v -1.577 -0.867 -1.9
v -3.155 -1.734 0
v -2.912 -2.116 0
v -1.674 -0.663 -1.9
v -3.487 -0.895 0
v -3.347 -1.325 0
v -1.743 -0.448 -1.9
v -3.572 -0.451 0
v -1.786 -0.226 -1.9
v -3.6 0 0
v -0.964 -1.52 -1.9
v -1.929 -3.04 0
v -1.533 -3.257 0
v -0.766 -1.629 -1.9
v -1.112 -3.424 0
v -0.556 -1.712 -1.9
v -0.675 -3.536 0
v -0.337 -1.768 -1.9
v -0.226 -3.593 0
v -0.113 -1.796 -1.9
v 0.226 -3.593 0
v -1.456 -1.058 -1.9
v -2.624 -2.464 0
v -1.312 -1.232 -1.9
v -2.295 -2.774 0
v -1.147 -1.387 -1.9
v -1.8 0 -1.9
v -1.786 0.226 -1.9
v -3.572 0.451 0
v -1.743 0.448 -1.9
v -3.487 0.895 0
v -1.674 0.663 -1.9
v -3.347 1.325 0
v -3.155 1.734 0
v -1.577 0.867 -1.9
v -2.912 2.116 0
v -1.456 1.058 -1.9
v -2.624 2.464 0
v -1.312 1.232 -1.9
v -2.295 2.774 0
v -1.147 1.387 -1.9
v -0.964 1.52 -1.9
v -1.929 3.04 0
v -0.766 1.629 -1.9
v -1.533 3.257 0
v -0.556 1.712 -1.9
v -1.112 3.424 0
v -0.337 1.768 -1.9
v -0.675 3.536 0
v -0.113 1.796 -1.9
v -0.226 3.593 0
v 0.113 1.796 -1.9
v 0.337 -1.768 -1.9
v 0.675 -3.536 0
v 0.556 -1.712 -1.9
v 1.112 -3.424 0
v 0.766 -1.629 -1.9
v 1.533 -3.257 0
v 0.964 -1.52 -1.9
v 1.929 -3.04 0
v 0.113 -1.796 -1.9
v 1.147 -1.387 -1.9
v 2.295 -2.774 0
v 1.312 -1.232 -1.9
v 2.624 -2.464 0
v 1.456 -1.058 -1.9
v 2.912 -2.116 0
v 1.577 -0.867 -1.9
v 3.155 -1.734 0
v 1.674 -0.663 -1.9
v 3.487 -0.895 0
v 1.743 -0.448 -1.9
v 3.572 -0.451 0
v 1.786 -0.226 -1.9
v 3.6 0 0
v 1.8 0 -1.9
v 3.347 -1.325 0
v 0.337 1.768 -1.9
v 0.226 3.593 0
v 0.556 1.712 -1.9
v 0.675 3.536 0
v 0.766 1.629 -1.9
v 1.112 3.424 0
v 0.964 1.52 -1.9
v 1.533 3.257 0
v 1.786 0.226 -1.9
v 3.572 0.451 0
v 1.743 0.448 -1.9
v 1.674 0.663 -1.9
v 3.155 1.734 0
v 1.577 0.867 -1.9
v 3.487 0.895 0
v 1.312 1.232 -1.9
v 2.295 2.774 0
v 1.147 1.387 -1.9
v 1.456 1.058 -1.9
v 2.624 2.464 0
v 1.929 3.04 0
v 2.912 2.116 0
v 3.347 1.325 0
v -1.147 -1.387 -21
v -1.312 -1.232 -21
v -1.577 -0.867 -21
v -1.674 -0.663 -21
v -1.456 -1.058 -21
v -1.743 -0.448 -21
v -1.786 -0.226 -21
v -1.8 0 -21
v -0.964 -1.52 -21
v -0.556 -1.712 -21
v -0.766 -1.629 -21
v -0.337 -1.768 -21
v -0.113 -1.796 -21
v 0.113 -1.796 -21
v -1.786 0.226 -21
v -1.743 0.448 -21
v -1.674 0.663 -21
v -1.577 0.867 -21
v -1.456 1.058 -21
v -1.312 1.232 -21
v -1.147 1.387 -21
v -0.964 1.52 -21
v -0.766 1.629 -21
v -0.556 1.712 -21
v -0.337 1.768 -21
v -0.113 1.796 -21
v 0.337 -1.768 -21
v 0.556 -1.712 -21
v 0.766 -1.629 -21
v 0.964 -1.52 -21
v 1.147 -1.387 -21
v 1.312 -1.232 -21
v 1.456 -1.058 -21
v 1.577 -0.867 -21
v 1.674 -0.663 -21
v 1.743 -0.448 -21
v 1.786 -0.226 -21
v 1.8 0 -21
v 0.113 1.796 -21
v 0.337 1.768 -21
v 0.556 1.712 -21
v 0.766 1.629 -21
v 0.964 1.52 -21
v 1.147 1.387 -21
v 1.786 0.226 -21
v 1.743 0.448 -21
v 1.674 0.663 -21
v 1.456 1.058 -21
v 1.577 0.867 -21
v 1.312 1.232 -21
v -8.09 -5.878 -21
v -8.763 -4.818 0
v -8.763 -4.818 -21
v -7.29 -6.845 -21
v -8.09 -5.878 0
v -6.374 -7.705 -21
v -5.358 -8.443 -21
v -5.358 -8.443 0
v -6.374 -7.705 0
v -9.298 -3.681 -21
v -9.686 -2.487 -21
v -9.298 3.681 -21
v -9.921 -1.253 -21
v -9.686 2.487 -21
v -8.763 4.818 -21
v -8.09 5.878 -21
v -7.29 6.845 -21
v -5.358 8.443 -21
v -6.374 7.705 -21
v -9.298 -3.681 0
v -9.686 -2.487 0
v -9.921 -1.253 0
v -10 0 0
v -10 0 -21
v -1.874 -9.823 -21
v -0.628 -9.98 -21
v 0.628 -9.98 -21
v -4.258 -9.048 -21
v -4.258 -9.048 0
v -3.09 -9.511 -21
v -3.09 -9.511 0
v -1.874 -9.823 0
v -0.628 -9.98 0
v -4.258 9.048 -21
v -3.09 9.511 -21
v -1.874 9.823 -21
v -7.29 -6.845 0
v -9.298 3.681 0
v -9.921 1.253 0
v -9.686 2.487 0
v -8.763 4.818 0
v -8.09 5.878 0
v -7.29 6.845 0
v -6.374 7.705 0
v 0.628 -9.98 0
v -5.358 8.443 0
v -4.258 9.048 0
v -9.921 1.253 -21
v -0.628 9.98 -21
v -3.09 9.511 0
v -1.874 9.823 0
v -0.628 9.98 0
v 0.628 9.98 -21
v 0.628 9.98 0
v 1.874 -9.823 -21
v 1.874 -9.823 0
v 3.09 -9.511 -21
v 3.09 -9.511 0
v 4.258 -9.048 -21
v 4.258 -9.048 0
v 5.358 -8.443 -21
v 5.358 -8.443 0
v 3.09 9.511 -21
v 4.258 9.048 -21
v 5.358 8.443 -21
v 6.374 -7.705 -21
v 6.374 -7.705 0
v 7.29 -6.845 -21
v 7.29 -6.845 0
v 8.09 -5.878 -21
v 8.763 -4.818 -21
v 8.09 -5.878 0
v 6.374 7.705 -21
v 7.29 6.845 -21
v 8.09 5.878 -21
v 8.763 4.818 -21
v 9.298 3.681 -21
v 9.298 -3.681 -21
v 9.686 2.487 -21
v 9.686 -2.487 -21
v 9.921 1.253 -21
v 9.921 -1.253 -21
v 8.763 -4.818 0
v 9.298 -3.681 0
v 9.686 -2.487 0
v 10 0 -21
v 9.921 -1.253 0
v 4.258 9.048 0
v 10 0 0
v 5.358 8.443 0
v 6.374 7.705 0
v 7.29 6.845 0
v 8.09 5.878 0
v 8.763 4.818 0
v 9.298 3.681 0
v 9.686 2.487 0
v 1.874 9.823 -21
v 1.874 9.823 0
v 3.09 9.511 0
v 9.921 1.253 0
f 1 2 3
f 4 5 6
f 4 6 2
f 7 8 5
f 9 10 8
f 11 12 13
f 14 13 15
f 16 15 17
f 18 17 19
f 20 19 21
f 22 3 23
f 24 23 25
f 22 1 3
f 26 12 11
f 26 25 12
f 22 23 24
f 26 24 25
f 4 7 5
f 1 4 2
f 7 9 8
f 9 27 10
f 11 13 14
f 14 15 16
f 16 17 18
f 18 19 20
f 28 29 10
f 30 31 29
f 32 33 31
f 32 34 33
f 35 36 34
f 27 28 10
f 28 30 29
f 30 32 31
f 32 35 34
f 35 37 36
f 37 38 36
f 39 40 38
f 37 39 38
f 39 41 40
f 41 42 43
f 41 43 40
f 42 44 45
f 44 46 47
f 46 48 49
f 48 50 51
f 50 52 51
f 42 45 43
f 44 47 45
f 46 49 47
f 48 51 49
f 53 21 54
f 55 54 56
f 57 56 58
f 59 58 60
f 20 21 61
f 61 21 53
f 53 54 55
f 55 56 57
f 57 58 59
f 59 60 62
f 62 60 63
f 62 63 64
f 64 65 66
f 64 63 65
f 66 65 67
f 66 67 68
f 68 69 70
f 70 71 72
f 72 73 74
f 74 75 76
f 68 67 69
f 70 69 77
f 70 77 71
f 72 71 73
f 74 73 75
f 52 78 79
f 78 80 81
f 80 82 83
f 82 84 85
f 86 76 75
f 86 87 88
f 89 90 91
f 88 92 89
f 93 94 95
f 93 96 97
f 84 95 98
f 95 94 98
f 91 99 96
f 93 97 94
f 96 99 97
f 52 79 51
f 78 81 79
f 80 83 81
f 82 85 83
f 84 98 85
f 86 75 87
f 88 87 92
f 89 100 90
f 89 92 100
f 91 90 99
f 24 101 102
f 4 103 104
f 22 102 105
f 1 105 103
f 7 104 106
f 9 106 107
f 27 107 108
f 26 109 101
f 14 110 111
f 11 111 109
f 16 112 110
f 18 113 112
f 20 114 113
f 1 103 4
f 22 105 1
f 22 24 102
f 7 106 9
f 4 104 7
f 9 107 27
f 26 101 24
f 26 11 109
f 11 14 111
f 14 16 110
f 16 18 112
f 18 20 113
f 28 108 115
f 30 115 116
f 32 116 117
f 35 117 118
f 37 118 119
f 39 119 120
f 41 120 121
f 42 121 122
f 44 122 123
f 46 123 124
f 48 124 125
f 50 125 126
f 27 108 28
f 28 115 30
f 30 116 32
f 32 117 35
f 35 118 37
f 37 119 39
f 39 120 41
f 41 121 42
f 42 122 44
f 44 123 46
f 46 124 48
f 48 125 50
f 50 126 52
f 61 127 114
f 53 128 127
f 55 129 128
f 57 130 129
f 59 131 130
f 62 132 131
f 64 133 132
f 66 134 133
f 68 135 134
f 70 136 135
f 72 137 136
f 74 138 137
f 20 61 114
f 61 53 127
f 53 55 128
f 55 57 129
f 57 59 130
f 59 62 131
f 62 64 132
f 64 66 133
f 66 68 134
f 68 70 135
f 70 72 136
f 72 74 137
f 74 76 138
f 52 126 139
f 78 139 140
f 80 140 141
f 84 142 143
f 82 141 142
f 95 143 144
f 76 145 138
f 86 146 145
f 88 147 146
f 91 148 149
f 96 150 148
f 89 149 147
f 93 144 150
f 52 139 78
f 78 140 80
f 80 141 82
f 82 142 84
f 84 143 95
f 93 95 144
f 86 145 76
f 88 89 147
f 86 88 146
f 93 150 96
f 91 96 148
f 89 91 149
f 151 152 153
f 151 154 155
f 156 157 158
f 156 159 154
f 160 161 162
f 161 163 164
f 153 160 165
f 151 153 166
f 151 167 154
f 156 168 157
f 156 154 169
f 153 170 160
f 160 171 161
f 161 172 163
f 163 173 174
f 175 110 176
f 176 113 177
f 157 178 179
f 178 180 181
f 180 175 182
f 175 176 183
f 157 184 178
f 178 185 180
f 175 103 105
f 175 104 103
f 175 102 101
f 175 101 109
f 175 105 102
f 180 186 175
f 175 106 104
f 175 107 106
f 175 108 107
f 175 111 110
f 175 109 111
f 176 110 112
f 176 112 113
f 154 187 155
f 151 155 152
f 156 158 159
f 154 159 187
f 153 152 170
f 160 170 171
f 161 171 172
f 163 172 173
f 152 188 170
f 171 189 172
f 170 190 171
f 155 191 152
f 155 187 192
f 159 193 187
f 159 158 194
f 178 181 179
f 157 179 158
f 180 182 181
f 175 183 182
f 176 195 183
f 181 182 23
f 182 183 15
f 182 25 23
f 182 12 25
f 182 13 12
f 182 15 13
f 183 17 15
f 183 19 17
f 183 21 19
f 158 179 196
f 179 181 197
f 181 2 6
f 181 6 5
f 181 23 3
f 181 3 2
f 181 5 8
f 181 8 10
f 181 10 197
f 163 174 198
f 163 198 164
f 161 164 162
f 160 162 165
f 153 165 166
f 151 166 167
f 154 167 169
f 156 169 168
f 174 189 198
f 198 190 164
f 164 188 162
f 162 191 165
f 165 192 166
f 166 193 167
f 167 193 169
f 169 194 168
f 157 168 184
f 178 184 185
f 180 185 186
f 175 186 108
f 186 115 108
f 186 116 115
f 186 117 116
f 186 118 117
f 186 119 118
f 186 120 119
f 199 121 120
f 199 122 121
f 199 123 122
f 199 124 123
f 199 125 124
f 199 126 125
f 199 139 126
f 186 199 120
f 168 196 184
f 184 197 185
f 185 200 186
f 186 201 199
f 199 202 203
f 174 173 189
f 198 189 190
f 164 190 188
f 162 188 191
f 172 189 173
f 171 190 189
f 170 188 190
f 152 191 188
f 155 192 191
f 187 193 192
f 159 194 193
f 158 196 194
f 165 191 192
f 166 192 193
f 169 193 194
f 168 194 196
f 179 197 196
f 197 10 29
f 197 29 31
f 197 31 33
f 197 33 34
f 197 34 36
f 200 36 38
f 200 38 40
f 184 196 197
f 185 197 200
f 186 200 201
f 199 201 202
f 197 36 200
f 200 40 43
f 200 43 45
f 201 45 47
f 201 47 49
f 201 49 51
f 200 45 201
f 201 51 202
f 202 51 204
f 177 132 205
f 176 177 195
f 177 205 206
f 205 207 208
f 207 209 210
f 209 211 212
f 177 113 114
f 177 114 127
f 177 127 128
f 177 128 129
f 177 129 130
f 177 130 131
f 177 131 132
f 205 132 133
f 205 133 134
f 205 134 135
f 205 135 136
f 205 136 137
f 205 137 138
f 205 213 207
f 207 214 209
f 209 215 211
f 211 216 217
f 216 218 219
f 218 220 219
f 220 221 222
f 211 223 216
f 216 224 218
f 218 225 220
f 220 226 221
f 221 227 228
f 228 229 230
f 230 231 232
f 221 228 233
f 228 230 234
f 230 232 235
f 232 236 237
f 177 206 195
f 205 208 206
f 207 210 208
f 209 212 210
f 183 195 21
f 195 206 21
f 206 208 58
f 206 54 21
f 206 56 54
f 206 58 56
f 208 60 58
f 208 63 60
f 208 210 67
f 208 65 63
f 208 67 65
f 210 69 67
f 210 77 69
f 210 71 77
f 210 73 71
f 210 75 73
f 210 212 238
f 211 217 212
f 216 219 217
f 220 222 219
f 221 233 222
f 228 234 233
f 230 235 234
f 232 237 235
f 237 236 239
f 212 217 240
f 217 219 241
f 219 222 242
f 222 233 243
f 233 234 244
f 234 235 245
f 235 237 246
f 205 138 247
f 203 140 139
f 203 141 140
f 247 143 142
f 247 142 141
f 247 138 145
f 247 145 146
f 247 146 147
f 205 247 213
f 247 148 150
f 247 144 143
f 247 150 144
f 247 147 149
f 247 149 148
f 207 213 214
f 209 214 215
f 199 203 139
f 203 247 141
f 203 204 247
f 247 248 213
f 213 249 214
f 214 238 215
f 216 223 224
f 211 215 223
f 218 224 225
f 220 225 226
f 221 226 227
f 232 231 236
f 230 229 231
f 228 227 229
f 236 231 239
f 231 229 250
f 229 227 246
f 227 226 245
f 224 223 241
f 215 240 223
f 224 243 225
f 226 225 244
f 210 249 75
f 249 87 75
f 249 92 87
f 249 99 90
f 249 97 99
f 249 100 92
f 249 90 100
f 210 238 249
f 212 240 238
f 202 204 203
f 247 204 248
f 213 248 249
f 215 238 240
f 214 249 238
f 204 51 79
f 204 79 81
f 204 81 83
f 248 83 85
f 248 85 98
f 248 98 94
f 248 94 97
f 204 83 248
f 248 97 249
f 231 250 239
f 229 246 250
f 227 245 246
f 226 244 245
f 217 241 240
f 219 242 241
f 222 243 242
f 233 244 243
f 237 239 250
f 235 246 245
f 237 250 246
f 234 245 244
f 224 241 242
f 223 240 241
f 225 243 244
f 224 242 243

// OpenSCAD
$fn = 50;

difference() {
	union() {
		translate(v = [0, 0, -21.0]) {
			cylinder(h = 21, r = 10.0);
		}
	}
	union() {
		translate(v = [0, 0, 0]) {
			rotate(a = [0, 0, 0]) {
				difference() {
					union() {
						translate(v = [0, 0, -24.0]) {
							cylinder(h = 24, r = 1.5);
						}
						translate(v = [0, 0, -1.9]) {
							cylinder(h = 1.9, r1 = 1.8, r2 = 3.6);
						}
						translate(v = [0, 0, -24.0]) {
							cylinder(h = 24, r = 1.8);
						}
						translate(v = [0, 0, -24.0]) {
							cylinder(h = 24, r = 1.5);
						}
					}
					union();
				}
			}
		}
	}
}
